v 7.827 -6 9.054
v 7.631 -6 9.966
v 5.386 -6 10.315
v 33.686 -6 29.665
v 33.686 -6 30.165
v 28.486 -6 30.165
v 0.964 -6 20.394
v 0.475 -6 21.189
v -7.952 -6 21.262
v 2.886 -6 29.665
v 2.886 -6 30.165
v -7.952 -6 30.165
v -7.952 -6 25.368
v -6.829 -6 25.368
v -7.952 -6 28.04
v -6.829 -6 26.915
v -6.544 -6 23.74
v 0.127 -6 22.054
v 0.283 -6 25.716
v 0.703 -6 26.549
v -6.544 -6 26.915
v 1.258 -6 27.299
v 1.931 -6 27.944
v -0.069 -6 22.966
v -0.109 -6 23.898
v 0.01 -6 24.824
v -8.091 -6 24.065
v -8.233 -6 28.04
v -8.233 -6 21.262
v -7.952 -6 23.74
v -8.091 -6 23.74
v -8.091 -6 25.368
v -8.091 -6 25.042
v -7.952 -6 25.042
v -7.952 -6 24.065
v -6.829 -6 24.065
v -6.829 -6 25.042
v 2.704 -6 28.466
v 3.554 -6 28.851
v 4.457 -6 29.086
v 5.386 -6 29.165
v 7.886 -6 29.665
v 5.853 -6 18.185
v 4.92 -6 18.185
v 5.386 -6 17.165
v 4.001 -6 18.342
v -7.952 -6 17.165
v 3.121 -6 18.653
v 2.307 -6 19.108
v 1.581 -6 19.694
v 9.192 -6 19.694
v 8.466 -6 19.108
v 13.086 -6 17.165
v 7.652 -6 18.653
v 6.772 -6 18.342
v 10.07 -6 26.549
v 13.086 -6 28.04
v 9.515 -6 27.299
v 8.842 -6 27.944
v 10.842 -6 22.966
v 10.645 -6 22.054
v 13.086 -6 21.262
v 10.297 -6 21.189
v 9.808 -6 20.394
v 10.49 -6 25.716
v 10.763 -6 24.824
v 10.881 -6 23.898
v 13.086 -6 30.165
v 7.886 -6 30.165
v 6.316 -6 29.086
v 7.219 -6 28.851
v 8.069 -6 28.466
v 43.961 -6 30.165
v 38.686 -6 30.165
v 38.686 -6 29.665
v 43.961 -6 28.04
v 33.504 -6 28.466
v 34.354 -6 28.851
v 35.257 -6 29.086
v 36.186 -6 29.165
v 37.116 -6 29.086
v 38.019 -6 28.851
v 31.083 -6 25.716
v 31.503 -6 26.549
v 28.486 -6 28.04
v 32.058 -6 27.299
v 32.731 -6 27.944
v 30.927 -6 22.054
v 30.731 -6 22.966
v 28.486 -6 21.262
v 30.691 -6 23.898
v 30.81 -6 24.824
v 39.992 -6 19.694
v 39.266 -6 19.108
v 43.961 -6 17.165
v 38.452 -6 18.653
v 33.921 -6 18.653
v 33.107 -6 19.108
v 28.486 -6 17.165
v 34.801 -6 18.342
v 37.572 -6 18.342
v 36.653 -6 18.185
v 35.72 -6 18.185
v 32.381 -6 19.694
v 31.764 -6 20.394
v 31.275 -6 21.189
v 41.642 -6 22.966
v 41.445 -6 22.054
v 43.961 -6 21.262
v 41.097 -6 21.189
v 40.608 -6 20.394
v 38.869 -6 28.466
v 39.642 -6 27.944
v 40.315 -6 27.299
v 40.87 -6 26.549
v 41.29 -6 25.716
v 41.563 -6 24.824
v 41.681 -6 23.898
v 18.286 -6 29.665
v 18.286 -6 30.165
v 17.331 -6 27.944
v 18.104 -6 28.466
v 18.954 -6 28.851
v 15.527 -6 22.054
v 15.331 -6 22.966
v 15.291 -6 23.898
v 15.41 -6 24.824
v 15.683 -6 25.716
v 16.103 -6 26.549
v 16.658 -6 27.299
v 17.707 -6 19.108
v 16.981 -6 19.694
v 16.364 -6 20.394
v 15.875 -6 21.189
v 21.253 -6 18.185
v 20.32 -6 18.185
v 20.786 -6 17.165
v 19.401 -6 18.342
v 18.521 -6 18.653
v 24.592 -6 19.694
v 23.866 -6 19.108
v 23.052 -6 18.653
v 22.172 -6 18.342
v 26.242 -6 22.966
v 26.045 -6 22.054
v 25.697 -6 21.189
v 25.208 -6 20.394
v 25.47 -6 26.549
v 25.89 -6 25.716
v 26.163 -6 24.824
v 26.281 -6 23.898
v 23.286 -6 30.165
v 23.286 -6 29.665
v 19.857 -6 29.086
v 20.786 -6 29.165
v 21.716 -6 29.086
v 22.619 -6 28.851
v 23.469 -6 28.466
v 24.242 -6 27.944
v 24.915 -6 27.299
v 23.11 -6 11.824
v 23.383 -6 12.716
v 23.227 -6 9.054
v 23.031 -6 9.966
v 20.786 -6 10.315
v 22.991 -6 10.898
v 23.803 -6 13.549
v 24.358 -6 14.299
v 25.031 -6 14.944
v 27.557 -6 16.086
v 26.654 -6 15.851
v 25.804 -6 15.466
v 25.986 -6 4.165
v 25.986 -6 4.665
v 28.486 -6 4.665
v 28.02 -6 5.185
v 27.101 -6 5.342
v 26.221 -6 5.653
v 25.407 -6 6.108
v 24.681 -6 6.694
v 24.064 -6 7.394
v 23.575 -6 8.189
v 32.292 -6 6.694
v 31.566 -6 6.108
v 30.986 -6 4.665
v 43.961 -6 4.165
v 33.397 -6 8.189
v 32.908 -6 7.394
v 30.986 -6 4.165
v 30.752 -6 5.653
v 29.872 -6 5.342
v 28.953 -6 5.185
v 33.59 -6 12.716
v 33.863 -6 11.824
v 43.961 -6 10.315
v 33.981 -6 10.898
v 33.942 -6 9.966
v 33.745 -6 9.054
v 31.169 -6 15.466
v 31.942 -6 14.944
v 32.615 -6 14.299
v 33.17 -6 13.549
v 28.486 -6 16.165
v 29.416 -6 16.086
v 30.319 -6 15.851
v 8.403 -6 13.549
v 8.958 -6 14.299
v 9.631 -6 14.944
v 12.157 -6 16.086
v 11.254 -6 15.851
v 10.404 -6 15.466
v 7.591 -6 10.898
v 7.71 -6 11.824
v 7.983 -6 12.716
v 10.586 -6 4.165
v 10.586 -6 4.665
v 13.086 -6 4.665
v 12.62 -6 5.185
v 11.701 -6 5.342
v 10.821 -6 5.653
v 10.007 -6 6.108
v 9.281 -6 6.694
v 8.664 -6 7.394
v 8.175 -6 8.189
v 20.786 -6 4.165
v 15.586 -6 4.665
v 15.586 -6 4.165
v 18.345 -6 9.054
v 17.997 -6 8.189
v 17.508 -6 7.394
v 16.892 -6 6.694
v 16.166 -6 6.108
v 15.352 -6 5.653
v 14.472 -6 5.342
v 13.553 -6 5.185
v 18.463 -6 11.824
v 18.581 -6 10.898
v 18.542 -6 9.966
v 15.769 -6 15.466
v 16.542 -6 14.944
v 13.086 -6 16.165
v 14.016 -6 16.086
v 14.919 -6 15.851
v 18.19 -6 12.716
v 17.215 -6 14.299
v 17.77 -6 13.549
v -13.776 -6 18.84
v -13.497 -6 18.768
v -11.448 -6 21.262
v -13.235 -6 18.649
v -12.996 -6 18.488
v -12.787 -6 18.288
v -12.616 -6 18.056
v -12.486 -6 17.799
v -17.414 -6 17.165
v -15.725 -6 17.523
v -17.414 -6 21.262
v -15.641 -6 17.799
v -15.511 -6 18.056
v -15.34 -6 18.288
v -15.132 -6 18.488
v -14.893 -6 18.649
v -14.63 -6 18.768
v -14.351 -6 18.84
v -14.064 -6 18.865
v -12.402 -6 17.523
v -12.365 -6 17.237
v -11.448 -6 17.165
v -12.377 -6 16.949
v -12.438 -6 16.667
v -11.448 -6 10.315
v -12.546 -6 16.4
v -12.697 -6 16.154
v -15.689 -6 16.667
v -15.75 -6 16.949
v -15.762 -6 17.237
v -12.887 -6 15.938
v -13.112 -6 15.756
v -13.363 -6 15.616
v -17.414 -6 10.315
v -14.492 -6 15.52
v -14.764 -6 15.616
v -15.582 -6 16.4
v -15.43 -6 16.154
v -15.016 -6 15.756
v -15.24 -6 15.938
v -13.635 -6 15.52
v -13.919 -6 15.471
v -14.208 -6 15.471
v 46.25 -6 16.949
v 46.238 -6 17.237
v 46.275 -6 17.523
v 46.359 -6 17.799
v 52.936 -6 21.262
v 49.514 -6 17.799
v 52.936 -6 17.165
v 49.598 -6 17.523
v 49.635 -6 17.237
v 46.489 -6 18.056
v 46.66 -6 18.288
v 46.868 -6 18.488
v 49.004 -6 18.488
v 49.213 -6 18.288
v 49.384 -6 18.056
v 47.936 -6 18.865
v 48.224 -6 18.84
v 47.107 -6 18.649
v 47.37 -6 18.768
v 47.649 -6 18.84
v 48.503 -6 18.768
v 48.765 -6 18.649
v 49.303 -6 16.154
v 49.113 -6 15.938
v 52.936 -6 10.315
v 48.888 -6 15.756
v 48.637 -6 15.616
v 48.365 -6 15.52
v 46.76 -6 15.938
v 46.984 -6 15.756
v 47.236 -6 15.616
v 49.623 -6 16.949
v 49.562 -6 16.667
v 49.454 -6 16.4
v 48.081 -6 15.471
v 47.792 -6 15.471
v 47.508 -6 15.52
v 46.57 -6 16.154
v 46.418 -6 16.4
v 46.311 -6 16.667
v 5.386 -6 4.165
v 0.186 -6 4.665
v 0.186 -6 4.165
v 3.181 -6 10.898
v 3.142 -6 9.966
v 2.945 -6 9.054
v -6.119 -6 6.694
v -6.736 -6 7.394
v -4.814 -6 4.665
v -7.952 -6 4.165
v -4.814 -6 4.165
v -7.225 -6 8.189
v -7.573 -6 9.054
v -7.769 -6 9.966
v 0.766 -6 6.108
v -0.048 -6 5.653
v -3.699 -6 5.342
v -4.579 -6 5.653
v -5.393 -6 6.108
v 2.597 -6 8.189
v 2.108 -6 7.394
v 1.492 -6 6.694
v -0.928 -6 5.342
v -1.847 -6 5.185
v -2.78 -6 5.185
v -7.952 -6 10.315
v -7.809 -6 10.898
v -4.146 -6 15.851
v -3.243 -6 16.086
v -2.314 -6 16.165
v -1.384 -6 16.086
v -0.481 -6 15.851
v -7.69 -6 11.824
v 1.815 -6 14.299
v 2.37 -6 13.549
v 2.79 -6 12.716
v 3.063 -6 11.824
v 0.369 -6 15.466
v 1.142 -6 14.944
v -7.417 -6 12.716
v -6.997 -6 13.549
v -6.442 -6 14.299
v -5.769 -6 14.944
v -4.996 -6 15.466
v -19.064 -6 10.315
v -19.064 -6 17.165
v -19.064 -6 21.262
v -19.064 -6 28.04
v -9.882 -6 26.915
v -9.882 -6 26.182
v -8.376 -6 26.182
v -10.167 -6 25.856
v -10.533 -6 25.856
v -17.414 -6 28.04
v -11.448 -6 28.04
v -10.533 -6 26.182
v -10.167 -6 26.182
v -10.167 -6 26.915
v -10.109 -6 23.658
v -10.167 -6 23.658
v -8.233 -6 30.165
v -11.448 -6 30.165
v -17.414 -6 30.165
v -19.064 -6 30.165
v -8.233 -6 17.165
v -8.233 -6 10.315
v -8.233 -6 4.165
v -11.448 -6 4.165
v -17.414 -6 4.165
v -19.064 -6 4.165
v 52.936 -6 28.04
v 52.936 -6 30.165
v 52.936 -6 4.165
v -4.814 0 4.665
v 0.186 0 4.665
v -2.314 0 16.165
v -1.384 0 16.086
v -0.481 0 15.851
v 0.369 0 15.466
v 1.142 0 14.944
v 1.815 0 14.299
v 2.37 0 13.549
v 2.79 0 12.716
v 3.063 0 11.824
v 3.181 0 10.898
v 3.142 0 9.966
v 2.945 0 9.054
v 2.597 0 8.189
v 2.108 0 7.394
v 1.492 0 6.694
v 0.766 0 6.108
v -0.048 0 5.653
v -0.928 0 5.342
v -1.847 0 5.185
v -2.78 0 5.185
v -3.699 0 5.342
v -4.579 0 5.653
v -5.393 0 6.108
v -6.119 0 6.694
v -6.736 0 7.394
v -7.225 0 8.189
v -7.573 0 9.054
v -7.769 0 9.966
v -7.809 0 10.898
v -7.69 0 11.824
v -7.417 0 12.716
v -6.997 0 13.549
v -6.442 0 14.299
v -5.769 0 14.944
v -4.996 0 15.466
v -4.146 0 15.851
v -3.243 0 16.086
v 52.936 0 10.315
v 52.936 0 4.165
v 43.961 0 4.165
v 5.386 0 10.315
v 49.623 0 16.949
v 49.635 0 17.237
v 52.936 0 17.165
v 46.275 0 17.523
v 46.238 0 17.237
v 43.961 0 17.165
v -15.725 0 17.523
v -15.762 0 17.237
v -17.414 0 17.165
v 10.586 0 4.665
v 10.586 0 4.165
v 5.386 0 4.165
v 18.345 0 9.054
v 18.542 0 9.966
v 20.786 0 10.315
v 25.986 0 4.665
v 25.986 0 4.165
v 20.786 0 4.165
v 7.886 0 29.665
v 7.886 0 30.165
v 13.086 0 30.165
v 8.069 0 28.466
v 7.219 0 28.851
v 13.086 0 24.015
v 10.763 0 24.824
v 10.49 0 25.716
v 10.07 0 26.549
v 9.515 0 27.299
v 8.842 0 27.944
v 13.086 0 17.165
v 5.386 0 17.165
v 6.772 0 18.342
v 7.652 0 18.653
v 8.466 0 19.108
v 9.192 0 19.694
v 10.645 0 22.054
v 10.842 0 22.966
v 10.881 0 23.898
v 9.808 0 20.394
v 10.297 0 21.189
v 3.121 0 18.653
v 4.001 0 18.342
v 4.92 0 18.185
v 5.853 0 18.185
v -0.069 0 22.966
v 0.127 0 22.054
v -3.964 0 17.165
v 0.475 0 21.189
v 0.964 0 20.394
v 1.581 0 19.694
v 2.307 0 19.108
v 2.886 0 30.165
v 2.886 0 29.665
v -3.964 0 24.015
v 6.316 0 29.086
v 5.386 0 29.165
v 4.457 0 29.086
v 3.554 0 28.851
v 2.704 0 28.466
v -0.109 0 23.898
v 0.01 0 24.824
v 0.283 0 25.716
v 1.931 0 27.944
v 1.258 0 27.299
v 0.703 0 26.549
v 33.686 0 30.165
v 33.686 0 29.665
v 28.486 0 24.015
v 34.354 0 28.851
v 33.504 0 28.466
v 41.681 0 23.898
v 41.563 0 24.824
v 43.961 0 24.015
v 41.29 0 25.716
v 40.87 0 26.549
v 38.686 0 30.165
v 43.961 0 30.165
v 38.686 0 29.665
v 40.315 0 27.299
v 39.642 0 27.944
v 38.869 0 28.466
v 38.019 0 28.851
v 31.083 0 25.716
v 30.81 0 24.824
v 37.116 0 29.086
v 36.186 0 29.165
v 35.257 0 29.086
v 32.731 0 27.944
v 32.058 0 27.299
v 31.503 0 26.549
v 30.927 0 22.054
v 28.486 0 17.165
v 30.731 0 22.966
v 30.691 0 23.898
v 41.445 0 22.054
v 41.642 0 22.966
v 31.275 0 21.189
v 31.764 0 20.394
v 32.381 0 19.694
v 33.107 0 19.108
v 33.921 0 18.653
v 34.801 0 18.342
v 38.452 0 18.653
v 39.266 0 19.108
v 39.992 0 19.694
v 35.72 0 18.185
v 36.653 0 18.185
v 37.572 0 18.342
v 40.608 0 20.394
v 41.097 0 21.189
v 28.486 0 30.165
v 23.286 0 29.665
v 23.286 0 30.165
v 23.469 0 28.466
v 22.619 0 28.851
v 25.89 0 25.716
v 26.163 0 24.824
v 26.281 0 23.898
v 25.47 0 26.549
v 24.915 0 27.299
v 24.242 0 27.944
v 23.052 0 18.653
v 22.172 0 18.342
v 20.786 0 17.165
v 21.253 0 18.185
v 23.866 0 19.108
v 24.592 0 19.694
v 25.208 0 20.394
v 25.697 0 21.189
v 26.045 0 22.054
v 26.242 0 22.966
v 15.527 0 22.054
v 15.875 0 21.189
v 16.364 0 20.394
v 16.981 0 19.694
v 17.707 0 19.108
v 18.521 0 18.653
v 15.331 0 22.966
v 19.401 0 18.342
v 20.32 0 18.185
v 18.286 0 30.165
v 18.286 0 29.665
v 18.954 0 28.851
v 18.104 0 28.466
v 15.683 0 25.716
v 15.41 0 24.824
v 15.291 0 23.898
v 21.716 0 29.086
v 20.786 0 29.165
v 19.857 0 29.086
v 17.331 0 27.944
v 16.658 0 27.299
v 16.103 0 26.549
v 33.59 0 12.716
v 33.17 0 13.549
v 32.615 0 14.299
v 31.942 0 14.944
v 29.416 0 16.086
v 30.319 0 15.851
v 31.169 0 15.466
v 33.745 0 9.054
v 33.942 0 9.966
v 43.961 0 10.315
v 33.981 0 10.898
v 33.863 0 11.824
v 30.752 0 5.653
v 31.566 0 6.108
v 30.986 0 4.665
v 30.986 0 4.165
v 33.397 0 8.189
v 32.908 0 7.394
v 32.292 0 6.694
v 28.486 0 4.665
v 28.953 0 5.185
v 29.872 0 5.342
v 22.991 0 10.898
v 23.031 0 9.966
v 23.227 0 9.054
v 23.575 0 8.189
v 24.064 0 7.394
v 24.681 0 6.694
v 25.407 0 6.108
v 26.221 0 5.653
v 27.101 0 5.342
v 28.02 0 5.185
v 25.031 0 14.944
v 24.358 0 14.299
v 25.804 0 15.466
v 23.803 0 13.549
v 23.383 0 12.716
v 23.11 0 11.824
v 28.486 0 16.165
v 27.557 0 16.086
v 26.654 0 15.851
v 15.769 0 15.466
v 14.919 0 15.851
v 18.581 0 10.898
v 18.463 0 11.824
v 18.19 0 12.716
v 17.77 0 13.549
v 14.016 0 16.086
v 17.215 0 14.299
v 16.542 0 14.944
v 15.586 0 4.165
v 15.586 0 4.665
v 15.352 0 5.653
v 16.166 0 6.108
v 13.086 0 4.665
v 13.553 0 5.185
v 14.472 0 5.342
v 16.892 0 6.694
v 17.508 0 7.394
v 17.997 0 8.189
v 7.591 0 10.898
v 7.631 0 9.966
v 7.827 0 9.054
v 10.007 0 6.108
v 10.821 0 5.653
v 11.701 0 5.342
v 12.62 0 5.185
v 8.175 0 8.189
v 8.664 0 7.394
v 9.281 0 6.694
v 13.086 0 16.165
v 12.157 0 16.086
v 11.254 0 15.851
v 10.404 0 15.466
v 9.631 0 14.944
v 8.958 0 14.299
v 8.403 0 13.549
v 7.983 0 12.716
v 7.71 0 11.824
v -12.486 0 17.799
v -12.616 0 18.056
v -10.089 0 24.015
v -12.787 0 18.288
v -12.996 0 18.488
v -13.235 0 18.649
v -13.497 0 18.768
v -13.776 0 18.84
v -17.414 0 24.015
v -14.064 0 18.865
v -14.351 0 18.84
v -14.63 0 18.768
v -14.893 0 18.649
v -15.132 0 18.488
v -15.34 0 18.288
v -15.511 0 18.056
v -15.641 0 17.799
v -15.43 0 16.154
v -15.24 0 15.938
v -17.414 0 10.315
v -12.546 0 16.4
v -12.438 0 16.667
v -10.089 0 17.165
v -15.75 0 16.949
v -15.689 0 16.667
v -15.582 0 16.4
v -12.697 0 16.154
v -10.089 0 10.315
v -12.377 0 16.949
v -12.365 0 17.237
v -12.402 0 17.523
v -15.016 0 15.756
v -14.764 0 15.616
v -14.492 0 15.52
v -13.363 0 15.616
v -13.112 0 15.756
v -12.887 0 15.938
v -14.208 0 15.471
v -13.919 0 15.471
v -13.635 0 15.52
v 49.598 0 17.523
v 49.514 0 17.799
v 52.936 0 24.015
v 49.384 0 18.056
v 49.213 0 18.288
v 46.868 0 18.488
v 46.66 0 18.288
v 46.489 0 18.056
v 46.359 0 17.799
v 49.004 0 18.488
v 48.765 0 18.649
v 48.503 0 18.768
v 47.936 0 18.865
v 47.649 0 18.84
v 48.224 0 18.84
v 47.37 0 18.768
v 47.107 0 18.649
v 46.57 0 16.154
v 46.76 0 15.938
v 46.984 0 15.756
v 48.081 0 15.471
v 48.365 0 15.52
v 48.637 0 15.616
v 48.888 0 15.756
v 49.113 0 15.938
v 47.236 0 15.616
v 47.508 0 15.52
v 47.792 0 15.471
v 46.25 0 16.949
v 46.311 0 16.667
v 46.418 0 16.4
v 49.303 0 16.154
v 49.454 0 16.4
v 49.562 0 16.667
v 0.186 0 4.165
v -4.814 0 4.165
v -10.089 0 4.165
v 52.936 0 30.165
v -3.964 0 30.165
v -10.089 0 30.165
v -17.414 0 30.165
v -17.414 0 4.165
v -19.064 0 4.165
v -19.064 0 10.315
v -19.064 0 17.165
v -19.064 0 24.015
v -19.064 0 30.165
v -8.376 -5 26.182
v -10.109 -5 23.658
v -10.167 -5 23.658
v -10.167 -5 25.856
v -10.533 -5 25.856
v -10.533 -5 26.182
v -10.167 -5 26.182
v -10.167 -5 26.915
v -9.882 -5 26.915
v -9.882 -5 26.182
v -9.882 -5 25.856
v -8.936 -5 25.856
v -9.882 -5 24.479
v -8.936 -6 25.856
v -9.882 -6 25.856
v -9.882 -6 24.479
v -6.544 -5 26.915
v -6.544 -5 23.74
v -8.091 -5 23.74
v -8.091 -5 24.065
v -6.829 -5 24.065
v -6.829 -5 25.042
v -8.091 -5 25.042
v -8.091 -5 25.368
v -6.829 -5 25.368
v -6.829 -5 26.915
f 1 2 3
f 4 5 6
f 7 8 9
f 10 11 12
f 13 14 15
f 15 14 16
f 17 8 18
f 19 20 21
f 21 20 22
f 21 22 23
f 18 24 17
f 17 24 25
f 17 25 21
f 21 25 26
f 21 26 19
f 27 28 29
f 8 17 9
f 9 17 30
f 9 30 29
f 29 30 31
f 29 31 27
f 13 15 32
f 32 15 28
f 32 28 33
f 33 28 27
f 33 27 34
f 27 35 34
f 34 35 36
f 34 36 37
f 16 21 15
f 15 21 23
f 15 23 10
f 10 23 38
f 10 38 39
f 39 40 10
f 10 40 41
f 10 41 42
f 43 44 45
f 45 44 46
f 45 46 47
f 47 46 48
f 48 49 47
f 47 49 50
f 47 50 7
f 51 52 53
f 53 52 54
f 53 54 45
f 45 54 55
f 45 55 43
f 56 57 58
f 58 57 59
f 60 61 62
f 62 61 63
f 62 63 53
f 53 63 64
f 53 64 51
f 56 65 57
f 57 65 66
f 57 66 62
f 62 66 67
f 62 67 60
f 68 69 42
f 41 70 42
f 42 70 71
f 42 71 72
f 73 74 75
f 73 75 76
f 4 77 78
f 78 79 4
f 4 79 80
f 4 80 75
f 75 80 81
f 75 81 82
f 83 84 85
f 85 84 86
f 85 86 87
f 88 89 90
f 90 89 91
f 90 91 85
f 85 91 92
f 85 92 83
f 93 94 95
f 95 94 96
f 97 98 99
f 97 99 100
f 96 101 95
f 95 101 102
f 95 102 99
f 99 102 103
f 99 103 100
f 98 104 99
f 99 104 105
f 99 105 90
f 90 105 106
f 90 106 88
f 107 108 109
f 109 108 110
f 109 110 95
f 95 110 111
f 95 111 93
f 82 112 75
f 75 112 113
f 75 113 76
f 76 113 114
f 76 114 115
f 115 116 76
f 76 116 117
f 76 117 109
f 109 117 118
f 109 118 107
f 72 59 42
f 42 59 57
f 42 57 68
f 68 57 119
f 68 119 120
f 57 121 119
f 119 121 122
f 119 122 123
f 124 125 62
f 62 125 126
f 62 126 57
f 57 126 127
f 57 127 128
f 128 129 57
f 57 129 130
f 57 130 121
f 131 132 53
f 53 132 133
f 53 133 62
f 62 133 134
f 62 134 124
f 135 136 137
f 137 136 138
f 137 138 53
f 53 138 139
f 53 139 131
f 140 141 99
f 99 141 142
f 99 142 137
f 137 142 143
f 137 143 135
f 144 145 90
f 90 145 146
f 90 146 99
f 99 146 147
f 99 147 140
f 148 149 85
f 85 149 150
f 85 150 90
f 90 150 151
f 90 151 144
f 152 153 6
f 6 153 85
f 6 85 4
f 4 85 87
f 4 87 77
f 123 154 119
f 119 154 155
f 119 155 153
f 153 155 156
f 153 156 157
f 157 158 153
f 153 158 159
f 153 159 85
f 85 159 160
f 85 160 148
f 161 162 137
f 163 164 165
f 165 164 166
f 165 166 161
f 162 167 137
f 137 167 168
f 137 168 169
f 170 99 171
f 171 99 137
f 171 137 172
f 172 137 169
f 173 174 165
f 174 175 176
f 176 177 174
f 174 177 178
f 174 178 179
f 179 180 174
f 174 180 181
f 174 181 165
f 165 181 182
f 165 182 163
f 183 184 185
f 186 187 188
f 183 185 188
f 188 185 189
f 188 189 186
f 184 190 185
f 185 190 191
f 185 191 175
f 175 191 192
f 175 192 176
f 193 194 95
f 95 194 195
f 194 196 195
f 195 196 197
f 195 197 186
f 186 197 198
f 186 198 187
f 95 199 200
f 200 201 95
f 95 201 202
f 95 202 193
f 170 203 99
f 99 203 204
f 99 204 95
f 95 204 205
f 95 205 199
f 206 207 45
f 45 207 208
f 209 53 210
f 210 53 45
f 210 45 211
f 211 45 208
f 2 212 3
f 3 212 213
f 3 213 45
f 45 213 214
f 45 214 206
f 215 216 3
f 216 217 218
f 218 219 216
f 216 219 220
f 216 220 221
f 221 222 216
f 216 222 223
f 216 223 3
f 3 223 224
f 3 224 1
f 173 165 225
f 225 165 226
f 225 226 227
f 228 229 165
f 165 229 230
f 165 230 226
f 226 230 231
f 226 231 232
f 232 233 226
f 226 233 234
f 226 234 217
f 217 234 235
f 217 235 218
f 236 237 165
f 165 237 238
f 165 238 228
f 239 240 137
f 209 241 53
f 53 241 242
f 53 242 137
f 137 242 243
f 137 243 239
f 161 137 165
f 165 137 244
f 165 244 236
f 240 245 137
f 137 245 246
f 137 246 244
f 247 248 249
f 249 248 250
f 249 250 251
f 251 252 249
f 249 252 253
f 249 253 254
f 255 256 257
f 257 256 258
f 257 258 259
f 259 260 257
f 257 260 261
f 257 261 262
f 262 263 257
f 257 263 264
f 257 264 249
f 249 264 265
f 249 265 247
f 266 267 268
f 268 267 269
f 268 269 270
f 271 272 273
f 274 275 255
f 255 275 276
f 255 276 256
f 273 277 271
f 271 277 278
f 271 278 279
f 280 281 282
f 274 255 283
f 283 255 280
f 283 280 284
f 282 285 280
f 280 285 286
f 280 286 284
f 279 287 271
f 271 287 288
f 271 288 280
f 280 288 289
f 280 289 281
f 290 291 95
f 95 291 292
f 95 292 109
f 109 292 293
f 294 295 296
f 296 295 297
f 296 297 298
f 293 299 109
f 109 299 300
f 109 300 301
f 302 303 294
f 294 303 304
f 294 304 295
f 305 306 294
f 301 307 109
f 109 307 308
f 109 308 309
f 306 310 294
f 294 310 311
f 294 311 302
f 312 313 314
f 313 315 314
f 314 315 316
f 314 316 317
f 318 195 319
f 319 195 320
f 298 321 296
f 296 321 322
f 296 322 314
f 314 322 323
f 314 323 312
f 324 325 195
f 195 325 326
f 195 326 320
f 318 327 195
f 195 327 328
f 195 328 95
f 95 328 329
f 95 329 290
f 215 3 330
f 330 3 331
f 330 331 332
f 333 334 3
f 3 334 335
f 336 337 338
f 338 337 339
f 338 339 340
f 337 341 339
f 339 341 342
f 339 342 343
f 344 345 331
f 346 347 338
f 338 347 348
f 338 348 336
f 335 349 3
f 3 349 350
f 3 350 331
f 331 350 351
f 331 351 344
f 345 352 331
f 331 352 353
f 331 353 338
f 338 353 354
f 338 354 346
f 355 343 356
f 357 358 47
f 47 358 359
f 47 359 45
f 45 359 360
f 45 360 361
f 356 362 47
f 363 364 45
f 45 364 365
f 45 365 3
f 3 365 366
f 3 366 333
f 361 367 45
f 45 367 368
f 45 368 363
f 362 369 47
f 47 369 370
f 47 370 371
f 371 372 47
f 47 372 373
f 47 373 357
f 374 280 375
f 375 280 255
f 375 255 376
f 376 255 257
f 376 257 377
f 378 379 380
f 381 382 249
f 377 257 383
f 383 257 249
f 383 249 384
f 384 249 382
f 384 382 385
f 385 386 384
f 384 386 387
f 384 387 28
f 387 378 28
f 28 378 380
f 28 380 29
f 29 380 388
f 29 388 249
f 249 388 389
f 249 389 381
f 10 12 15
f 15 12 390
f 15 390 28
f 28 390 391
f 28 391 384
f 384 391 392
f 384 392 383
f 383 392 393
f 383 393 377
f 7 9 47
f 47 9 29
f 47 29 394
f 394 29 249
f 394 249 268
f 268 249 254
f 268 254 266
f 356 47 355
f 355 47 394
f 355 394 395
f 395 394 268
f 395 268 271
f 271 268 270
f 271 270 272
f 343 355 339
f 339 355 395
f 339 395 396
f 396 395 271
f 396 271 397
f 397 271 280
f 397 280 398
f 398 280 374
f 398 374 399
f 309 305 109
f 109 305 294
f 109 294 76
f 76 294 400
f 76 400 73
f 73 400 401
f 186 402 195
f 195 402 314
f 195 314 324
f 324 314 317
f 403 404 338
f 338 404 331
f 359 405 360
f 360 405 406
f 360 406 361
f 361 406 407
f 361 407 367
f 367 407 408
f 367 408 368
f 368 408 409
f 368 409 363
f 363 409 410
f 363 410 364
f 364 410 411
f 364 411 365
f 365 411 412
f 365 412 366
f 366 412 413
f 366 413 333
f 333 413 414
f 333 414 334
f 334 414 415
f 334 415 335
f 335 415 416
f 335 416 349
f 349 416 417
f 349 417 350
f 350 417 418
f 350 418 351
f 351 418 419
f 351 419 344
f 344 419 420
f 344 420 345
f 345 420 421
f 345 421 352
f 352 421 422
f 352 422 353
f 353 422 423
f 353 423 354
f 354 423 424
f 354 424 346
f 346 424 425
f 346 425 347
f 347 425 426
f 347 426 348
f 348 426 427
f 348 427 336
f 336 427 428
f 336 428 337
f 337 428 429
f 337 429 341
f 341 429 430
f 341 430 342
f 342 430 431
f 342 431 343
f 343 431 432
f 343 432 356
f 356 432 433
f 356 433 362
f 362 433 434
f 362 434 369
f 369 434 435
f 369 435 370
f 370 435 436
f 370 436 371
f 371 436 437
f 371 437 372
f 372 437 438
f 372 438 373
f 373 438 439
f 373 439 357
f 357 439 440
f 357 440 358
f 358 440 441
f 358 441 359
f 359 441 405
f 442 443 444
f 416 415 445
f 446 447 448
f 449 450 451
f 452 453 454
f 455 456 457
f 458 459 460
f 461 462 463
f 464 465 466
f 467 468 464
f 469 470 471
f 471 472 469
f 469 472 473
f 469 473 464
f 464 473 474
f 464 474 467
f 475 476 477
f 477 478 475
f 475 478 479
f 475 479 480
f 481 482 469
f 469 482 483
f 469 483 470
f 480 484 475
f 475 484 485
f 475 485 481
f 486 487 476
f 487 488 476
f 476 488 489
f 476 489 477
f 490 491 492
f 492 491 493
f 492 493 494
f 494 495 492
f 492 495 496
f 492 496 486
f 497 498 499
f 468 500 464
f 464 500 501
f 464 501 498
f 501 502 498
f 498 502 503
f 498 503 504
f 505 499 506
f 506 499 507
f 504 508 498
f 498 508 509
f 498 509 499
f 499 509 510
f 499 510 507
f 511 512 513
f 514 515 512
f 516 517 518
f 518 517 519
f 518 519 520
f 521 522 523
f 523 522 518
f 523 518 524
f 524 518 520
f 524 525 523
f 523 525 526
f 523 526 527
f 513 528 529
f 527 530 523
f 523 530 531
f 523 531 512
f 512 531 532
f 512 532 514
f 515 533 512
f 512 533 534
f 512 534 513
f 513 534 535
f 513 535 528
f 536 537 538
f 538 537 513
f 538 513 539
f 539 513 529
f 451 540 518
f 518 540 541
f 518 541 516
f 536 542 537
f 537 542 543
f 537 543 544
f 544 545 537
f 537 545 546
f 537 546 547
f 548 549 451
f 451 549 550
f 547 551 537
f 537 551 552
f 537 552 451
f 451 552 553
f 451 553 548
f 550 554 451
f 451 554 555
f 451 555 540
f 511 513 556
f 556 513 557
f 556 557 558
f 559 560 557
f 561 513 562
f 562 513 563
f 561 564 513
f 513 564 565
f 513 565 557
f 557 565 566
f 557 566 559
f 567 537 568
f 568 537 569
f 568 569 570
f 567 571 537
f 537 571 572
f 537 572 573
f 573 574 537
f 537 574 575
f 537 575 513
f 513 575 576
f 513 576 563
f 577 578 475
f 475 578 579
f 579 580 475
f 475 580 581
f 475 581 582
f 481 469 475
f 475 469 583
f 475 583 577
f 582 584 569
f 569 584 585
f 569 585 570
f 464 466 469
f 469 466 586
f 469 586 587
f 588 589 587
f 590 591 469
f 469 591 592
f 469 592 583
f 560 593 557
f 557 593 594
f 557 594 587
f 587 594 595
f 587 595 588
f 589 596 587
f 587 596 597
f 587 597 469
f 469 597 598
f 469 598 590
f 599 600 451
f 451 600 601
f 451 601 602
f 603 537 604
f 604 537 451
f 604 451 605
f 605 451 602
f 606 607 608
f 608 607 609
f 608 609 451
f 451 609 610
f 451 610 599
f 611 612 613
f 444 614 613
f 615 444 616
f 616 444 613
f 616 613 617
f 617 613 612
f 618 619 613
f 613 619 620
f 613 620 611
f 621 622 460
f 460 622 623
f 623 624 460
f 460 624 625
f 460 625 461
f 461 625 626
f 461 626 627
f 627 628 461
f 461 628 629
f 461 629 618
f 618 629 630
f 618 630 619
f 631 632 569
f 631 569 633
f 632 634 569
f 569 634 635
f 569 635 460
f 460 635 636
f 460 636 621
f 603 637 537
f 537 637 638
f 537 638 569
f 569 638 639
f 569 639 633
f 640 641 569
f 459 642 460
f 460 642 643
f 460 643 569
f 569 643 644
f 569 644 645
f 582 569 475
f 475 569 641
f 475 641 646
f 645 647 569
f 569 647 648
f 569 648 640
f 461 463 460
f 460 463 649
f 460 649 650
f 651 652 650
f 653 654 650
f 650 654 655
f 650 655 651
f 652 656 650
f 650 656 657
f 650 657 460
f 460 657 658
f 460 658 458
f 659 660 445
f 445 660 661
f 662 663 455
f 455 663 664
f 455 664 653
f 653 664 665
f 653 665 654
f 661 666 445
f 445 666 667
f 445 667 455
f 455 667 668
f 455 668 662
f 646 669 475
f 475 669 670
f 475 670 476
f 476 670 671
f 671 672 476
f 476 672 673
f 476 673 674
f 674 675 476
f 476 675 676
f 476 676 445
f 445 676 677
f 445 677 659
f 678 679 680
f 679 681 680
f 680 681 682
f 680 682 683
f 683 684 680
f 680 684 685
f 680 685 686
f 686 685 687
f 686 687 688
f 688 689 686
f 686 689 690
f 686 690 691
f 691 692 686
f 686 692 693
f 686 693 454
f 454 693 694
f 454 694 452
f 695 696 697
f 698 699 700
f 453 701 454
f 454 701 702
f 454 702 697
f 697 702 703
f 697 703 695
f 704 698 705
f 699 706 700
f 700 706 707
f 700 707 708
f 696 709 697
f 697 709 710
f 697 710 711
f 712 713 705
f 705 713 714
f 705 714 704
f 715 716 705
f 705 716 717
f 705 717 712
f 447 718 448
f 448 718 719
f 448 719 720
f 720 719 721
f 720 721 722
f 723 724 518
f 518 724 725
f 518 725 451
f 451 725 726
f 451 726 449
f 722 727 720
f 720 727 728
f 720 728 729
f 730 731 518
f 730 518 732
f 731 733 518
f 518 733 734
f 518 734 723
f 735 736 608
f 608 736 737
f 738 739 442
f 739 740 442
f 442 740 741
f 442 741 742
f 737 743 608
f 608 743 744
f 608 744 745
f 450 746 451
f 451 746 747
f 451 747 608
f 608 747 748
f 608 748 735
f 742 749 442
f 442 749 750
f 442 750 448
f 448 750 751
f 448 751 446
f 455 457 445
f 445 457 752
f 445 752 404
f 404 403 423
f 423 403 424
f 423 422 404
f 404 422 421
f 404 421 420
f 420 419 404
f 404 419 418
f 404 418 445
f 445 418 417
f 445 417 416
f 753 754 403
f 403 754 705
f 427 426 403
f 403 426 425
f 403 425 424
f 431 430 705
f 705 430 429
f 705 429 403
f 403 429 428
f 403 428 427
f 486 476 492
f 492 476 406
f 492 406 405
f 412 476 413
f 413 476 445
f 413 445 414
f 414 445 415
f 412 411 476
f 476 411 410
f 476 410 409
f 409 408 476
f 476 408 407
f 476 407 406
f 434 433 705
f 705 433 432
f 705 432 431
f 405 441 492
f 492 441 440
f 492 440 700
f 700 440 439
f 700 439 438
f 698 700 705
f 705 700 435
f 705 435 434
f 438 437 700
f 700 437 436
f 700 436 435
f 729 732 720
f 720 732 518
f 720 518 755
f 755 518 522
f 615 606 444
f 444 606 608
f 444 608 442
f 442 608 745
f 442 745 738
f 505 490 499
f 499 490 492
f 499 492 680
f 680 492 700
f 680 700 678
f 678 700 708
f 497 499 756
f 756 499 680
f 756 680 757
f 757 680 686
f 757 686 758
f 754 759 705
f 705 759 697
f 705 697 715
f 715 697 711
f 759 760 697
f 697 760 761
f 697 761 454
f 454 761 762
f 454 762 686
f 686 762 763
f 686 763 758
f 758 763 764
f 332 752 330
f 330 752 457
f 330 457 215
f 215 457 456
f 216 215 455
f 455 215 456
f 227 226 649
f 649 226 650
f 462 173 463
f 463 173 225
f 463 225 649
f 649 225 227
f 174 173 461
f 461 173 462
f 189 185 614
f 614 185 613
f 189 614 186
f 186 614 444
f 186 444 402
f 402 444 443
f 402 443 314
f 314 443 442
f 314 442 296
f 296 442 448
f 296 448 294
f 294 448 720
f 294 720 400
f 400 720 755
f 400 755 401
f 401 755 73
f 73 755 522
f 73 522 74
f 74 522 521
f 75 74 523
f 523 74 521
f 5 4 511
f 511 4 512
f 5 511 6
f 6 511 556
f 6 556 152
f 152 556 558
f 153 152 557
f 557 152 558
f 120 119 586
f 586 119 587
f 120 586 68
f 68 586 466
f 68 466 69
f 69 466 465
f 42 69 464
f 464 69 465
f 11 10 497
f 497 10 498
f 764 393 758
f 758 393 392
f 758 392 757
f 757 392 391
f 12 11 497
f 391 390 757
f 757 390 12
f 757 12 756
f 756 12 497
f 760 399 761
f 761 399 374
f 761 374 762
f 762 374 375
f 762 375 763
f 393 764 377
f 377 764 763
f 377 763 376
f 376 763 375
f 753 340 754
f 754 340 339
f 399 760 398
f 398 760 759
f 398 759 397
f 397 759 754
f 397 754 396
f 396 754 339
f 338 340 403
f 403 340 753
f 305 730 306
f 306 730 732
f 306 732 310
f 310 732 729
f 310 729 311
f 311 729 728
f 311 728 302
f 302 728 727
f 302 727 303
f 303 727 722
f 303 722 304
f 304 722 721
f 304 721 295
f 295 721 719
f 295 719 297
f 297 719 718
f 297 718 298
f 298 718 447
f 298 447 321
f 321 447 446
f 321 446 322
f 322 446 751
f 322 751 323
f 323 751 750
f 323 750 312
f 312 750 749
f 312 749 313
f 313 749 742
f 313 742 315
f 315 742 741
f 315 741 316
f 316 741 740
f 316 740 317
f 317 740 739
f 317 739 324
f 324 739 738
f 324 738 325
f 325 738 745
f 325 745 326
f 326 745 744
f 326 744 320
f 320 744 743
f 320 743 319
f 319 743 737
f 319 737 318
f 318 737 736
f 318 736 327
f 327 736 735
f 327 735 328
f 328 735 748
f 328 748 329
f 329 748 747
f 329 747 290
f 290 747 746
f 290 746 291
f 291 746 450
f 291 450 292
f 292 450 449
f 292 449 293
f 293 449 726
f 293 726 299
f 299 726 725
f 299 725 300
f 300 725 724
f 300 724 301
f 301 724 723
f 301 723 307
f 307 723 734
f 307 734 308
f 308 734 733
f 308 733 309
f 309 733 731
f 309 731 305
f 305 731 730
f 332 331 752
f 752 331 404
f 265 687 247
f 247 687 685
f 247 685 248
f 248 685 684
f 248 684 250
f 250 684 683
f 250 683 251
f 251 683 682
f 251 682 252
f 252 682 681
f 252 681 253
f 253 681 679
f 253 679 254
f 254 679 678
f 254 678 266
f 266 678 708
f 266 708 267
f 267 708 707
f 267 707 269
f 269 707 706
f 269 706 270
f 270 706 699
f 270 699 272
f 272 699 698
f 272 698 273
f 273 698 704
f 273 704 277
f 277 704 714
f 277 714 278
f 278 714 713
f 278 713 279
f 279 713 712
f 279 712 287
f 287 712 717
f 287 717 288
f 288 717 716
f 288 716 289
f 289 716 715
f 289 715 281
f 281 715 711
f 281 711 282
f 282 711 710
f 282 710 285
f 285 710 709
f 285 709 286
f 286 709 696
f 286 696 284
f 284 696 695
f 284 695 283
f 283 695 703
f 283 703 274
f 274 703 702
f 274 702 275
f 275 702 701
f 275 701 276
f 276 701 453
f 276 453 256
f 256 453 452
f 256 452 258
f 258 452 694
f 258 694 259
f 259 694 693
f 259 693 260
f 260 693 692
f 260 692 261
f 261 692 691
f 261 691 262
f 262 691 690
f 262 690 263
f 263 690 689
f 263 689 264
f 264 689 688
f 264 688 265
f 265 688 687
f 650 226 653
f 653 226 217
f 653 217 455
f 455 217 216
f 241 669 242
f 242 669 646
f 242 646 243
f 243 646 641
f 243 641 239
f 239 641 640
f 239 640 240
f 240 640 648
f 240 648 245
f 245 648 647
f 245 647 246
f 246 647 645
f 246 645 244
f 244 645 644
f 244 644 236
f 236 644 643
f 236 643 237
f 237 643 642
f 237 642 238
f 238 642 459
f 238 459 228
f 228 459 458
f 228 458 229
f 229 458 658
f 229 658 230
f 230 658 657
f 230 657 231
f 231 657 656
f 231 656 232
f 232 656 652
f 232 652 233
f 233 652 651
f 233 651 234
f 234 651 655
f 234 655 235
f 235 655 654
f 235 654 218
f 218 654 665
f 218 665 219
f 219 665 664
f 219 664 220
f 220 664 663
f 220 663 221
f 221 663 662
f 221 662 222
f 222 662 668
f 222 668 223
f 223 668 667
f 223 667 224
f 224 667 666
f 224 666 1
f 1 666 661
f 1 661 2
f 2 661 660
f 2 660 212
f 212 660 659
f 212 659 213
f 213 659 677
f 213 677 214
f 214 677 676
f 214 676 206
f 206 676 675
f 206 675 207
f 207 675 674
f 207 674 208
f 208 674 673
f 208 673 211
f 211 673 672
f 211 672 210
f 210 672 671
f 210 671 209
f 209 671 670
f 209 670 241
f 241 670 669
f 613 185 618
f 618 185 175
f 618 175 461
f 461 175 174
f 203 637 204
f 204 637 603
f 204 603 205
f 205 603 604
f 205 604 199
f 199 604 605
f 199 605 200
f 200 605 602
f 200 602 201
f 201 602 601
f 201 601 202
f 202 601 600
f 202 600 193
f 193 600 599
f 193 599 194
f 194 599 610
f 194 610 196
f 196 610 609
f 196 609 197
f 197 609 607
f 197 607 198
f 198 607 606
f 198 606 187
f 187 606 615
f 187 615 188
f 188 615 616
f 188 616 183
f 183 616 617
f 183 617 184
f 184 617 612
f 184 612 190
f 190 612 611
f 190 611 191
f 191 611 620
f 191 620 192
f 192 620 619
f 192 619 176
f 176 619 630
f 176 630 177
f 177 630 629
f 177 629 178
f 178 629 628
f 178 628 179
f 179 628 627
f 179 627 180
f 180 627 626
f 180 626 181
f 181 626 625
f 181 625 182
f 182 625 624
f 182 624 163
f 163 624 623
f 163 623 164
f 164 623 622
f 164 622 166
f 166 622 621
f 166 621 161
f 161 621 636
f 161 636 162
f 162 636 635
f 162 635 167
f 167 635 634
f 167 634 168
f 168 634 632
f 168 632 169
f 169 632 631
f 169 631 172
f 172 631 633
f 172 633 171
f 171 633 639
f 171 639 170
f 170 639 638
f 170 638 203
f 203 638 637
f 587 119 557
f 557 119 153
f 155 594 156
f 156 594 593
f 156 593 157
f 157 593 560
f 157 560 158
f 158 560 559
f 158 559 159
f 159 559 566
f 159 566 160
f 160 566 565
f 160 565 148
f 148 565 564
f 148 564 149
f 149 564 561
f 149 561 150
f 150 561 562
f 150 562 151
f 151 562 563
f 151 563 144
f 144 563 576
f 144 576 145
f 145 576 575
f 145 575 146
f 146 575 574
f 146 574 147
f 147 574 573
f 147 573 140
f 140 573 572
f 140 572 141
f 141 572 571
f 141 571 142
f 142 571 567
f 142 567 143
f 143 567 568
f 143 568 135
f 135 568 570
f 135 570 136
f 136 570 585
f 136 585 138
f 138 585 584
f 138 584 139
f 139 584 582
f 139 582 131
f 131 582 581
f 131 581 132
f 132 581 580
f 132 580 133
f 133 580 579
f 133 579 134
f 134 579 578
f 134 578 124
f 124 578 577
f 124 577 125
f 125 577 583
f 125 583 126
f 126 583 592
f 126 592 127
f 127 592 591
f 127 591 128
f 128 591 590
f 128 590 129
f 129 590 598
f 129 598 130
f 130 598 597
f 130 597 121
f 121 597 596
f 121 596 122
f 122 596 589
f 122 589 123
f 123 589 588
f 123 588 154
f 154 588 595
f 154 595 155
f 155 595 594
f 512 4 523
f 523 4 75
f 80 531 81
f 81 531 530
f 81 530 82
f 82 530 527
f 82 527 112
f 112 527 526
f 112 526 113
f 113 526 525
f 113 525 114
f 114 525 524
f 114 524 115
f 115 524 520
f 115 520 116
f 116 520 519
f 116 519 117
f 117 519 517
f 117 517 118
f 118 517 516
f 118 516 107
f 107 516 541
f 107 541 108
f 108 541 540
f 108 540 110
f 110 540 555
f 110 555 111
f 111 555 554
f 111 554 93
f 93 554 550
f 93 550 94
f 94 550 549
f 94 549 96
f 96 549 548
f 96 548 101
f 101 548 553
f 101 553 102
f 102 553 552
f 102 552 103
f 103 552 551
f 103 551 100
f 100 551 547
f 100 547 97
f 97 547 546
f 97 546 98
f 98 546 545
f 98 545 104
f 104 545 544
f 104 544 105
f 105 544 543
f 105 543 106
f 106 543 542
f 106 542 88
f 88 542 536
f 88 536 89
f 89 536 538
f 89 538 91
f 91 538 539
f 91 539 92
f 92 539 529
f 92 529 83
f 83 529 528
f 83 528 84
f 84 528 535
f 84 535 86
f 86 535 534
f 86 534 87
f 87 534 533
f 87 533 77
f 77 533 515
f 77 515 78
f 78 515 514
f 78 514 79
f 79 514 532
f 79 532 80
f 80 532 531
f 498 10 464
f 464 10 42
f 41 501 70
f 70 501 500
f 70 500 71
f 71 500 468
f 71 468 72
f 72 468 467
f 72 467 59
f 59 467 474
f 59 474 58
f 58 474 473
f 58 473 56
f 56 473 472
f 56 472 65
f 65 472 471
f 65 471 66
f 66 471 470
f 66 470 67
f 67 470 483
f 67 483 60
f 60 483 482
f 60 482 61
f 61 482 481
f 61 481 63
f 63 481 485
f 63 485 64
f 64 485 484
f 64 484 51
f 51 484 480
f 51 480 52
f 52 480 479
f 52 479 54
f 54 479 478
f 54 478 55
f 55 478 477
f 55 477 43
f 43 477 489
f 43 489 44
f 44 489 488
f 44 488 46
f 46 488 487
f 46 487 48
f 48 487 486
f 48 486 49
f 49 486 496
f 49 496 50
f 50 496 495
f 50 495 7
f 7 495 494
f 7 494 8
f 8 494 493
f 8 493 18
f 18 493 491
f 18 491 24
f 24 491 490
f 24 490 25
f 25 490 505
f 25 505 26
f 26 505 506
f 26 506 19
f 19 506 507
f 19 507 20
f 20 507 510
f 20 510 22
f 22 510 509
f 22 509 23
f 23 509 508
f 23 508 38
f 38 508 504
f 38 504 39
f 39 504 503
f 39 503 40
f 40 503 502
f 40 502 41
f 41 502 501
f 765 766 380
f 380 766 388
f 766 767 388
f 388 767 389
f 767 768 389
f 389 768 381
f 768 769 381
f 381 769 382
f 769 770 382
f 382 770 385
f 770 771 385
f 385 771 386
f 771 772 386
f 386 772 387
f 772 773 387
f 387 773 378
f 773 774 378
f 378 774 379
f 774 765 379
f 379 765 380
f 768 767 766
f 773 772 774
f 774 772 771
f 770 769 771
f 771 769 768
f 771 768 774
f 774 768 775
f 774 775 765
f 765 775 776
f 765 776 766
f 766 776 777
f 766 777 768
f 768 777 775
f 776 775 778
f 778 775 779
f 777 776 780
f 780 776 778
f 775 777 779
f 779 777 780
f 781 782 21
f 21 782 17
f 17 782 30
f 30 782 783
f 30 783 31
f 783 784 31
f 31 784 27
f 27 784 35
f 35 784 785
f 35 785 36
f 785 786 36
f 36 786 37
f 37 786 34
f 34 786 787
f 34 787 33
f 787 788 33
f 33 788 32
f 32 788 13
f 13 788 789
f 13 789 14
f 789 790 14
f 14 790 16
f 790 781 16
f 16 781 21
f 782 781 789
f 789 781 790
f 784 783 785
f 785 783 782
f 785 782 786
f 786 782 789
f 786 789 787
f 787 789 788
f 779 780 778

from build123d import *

# Parameters (mm, degrees)
SKETCH1_R               = 5.5
BOSS_EXTRUDE1_DEPTH     = 6
BOSS_EXTRUDE1_2_DEPTH   = 6
BOSS_EXTRUDE1_3_DEPTH   = 6
BOSS_EXTRUDE1_4_DEPTH   = 6
BOSS_EXTRUDE1_5_DEPTH   = 6
BOSS_EXTRUDE1_6_DEPTH   = 6
BOSS_EXTRUDE2_START     = -6
BOSS_EXTRUDE2_OUTLINE_R = 1.7
BOSS_EXTRUDE2_DEPTH     = 6
CUT_EXTRUDE1_DEPTH      = 1


# Read off the part's stored shape, not the designer's step: Boss-Extrude2
with BuildPart() as part:
    # Sketch1 → Boss-Extrude1 (new body)
    with BuildSketch(Plane(origin=(0, 0, 0), x_dir=(1, 0, 0), z_dir=(0, 1, 0))):
        Polygon((3.686387934, -16.664883738), (3.686388262, -4.664883738), (-8.313611738, -4.66488341), (-8.313612066, -16.66488341), align=None)
        with Locations(Location((-2.313611902, -10.664883574, 0), (0, 0, 270))):
            Circle(SKETCH1_R, mode=Mode.SUBTRACT)
    extrude(amount=-BOSS_EXTRUDE1_DEPTH)



with BuildPart() as body_2:
    # Sketch1 → Boss-Extrude1 2 (new body)
    with BuildSketch(Plane(origin=(0, 0, 0), x_dir=(1, 0, 0), z_dir=(0, 1, 0))):
        Polygon((19.086387939, -16.664884095), (19.086388267, -4.664884095), (7.086388267, -4.664883767), (7.086387939, -16.664883767), align=None)
        with Locations(Location((13.086388103, -10.664883931, 0), (0, 0, 270))):
            Circle(SKETCH1_R, mode=Mode.SUBTRACT)
    extrude(amount=-BOSS_EXTRUDE1_2_DEPTH)


with BuildPart() as body_3:
    # Sketch1 → Boss-Extrude1 3 (new body)
    with BuildSketch(Plane(origin=(0, 0, 0), x_dir=(1, 0, 0), z_dir=(0, 1, 0))):
        Polygon((34.486387949, -16.66488445), (34.486388277, -4.66488445), (22.486388277, -4.664884122), (22.486387949, -16.664884122), align=None)
        with Locations(Location((28.486388113, -10.664884286, 0), (0, 0, 270))):
            Circle(SKETCH1_R, mode=Mode.SUBTRACT)
    extrude(amount=-BOSS_EXTRUDE1_3_DEPTH)


with BuildPart() as body_4:
    # Sketch1 → Boss-Extrude1 4 (new body)
    with BuildSketch(Plane(origin=(0, 0, 0), x_dir=(1, 0, 0), z_dir=(0, 1, 0))):
        Polygon((14.786387887, -17.664883977), (14.786387559, -29.664883977), (26.786387559, -29.664884305), (26.786387887, -17.664884305), align=None)
        with Locations(Location((20.786387723, -23.664884141, 0), (0, 0, 270))):
            Circle(SKETCH1_R, mode=Mode.SUBTRACT)
    extrude(amount=-BOSS_EXTRUDE1_4_DEPTH)


with BuildPart() as body_5:
    # Sketch1 → Boss-Extrude1 5 (new body)
    with BuildSketch(Plane(origin=(0, 0, 0), x_dir=(1, 0, 0), z_dir=(0, 1, 0))):
        Polygon((30.186386338, -17.664884333), (30.18638601, -29.664884333), (42.18638601, -29.664884661), (42.186386338, -17.664884661), align=None)
        with Locations(Location((36.186386174, -23.664884497, 0), (0, 0, 270))):
            Circle(SKETCH1_R, mode=Mode.SUBTRACT)
    extrude(amount=-BOSS_EXTRUDE1_5_DEPTH)


with BuildPart() as body_6:
    # Sketch1 → Boss-Extrude1 6 (new body)
    with BuildSketch(Plane(origin=(0, 0, 0), x_dir=(1, 0, 0), z_dir=(0, 1, 0))):
        Polygon((-0.613612103, -17.664883618), (-0.613612431, -29.664883618), (11.386387569, -29.664883947), (11.386387897, -17.664883947), align=None)
        with Locations(Location((5.386387733, -23.664883782, 0), (0, 0, 270))):
            Circle(SKETCH1_R, mode=Mode.SUBTRACT)
    extrude(amount=-BOSS_EXTRUDE1_6_DEPTH)


with BuildPart() as part_1:
    add(part.part)

    add(body_2.part)  # Boss-Extrude2 merges body 2

    add(body_3.part)  # Boss-Extrude2 merges body 3

    add(body_4.part)  # Boss-Extrude2 merges body 4

    add(body_5.part)  # Boss-Extrude2 merges body 5

    add(body_6.part)  # Boss-Extrude2 merges body 6
    # Boss-Extrude2 outline → Boss-Extrude2 (add)
    with BuildSketch(Plane(origin=(0, 0, 0), x_dir=(1, 0, 0), z_dir=(0, 1, 0)).offset(BOSS_EXTRUDE2_START)):
        Polygon((10.586388281, -4.164883862), (0.186388276, -4.164883578), (0.186388262, -4.664883642), (3.686388262, -4.664883738), (3.686387934, -16.664883738), (-8.313612066, -16.66488341), (-8.313611738, -4.66488341), (-4.813611738, -4.664883506), (-4.813611724, -4.164883505), (-19.063611735, -4.164883116), (-19.063612446, -30.164883114), (2.886387555, -30.164883714), (2.886387569, -29.664883714), (-0.613612431, -29.664883618), (-0.613612103, -17.664883618), (11.386387897, -17.664883947), (11.386387569, -29.664883947), (7.886387569, -29.664883851), (7.886387555, -30.164883851), (18.286387545, -30.164884073), (18.286387559, -29.664884073), (14.786387559, -29.664883977), (14.786387887, -17.664883977), (26.786387887, -17.664884305), (26.786387559, -29.664884305), (23.286387559, -29.664884209), (23.286387545, -30.16488421), (33.686385997, -30.164884494), (33.68638601, -29.664884428), (30.18638601, -29.664884333), (30.186386338, -17.664884333), (42.186386338, -17.664884661), (42.18638601, -29.664884661), (38.68638601, -29.664884565), (38.686385997, -30.164884565), (52.936387554, -30.164884954), (52.936388265, -4.164885084), (30.986388291, -4.164884354), (30.986388277, -4.664884354), (34.486388277, -4.66488445), (34.486387949, -16.66488445), (22.486387949, -16.664884122), (22.486388277, -4.664884122), (25.986388277, -4.664884218), (25.986388291, -4.164884218), (15.586388281, -4.164884108), (15.586388267, -4.664883999), (19.086388267, -4.664884095), (19.086387939, -16.664884095), (7.086387939, -16.664883767), (7.086388267, -4.664883767), (10.586388267, -4.664883863), align=None)
        with Locations((47.93638791, -17.164884883)):
            Circle(BOSS_EXTRUDE2_OUTLINE_R, mode=Mode.SUBTRACT)
        with Locations((-14.06361209, -17.164883252)):
            Circle(BOSS_EXTRUDE2_OUTLINE_R, mode=Mode.SUBTRACT)
    extrude(amount=BOSS_EXTRUDE2_DEPTH)

    # Sketch2 → Cut-Extrude1 (cut)
    # profile 1 of 2: a face of its own
    with BuildSketch(Plane(origin=(0, -6, 0), x_dir=(-1, 0, 0), z_dir=(0, -1, 0))):
        Polygon((6.544081332, -23.739762668), (8.090876204, -23.739762668), (8.090876204, -24.065403693), (6.829017229, -24.065403693), (6.829017229, -25.04232677), (8.090876204, -25.04232677), (8.090876204, -25.367967796), (6.829017229, -25.367967796), (6.829017229, -26.914762668), (6.544081332, -26.914762668), align=None)
    # profile 2 of 2: a face of its own
    with BuildSketch(Plane(origin=(0, -6, 0), x_dir=(-1, 0, 0), z_dir=(0, -1, 0))):
        Polygon((10.108960138, -23.658352411), (10.166837742, -23.658352411), (10.166837742, -25.856429335), (10.533183896, -25.856429335), (10.533183896, -26.18207036), (10.166837742, -26.18207036), (10.166837742, -26.914762668), (9.881901845, -26.914762668), (9.881901845, -26.18207036), (8.375812101, -26.18207036), align=None)
        Polygon((9.881901845, -25.856429335), (9.881901845, -24.478815152), (8.936143631, -25.856429335), align=None, mode=Mode.SUBTRACT)
    extrude(amount=-CUT_EXTRUDE1_DEPTH, mode=Mode.SUBTRACT)


solid = part_1.part
